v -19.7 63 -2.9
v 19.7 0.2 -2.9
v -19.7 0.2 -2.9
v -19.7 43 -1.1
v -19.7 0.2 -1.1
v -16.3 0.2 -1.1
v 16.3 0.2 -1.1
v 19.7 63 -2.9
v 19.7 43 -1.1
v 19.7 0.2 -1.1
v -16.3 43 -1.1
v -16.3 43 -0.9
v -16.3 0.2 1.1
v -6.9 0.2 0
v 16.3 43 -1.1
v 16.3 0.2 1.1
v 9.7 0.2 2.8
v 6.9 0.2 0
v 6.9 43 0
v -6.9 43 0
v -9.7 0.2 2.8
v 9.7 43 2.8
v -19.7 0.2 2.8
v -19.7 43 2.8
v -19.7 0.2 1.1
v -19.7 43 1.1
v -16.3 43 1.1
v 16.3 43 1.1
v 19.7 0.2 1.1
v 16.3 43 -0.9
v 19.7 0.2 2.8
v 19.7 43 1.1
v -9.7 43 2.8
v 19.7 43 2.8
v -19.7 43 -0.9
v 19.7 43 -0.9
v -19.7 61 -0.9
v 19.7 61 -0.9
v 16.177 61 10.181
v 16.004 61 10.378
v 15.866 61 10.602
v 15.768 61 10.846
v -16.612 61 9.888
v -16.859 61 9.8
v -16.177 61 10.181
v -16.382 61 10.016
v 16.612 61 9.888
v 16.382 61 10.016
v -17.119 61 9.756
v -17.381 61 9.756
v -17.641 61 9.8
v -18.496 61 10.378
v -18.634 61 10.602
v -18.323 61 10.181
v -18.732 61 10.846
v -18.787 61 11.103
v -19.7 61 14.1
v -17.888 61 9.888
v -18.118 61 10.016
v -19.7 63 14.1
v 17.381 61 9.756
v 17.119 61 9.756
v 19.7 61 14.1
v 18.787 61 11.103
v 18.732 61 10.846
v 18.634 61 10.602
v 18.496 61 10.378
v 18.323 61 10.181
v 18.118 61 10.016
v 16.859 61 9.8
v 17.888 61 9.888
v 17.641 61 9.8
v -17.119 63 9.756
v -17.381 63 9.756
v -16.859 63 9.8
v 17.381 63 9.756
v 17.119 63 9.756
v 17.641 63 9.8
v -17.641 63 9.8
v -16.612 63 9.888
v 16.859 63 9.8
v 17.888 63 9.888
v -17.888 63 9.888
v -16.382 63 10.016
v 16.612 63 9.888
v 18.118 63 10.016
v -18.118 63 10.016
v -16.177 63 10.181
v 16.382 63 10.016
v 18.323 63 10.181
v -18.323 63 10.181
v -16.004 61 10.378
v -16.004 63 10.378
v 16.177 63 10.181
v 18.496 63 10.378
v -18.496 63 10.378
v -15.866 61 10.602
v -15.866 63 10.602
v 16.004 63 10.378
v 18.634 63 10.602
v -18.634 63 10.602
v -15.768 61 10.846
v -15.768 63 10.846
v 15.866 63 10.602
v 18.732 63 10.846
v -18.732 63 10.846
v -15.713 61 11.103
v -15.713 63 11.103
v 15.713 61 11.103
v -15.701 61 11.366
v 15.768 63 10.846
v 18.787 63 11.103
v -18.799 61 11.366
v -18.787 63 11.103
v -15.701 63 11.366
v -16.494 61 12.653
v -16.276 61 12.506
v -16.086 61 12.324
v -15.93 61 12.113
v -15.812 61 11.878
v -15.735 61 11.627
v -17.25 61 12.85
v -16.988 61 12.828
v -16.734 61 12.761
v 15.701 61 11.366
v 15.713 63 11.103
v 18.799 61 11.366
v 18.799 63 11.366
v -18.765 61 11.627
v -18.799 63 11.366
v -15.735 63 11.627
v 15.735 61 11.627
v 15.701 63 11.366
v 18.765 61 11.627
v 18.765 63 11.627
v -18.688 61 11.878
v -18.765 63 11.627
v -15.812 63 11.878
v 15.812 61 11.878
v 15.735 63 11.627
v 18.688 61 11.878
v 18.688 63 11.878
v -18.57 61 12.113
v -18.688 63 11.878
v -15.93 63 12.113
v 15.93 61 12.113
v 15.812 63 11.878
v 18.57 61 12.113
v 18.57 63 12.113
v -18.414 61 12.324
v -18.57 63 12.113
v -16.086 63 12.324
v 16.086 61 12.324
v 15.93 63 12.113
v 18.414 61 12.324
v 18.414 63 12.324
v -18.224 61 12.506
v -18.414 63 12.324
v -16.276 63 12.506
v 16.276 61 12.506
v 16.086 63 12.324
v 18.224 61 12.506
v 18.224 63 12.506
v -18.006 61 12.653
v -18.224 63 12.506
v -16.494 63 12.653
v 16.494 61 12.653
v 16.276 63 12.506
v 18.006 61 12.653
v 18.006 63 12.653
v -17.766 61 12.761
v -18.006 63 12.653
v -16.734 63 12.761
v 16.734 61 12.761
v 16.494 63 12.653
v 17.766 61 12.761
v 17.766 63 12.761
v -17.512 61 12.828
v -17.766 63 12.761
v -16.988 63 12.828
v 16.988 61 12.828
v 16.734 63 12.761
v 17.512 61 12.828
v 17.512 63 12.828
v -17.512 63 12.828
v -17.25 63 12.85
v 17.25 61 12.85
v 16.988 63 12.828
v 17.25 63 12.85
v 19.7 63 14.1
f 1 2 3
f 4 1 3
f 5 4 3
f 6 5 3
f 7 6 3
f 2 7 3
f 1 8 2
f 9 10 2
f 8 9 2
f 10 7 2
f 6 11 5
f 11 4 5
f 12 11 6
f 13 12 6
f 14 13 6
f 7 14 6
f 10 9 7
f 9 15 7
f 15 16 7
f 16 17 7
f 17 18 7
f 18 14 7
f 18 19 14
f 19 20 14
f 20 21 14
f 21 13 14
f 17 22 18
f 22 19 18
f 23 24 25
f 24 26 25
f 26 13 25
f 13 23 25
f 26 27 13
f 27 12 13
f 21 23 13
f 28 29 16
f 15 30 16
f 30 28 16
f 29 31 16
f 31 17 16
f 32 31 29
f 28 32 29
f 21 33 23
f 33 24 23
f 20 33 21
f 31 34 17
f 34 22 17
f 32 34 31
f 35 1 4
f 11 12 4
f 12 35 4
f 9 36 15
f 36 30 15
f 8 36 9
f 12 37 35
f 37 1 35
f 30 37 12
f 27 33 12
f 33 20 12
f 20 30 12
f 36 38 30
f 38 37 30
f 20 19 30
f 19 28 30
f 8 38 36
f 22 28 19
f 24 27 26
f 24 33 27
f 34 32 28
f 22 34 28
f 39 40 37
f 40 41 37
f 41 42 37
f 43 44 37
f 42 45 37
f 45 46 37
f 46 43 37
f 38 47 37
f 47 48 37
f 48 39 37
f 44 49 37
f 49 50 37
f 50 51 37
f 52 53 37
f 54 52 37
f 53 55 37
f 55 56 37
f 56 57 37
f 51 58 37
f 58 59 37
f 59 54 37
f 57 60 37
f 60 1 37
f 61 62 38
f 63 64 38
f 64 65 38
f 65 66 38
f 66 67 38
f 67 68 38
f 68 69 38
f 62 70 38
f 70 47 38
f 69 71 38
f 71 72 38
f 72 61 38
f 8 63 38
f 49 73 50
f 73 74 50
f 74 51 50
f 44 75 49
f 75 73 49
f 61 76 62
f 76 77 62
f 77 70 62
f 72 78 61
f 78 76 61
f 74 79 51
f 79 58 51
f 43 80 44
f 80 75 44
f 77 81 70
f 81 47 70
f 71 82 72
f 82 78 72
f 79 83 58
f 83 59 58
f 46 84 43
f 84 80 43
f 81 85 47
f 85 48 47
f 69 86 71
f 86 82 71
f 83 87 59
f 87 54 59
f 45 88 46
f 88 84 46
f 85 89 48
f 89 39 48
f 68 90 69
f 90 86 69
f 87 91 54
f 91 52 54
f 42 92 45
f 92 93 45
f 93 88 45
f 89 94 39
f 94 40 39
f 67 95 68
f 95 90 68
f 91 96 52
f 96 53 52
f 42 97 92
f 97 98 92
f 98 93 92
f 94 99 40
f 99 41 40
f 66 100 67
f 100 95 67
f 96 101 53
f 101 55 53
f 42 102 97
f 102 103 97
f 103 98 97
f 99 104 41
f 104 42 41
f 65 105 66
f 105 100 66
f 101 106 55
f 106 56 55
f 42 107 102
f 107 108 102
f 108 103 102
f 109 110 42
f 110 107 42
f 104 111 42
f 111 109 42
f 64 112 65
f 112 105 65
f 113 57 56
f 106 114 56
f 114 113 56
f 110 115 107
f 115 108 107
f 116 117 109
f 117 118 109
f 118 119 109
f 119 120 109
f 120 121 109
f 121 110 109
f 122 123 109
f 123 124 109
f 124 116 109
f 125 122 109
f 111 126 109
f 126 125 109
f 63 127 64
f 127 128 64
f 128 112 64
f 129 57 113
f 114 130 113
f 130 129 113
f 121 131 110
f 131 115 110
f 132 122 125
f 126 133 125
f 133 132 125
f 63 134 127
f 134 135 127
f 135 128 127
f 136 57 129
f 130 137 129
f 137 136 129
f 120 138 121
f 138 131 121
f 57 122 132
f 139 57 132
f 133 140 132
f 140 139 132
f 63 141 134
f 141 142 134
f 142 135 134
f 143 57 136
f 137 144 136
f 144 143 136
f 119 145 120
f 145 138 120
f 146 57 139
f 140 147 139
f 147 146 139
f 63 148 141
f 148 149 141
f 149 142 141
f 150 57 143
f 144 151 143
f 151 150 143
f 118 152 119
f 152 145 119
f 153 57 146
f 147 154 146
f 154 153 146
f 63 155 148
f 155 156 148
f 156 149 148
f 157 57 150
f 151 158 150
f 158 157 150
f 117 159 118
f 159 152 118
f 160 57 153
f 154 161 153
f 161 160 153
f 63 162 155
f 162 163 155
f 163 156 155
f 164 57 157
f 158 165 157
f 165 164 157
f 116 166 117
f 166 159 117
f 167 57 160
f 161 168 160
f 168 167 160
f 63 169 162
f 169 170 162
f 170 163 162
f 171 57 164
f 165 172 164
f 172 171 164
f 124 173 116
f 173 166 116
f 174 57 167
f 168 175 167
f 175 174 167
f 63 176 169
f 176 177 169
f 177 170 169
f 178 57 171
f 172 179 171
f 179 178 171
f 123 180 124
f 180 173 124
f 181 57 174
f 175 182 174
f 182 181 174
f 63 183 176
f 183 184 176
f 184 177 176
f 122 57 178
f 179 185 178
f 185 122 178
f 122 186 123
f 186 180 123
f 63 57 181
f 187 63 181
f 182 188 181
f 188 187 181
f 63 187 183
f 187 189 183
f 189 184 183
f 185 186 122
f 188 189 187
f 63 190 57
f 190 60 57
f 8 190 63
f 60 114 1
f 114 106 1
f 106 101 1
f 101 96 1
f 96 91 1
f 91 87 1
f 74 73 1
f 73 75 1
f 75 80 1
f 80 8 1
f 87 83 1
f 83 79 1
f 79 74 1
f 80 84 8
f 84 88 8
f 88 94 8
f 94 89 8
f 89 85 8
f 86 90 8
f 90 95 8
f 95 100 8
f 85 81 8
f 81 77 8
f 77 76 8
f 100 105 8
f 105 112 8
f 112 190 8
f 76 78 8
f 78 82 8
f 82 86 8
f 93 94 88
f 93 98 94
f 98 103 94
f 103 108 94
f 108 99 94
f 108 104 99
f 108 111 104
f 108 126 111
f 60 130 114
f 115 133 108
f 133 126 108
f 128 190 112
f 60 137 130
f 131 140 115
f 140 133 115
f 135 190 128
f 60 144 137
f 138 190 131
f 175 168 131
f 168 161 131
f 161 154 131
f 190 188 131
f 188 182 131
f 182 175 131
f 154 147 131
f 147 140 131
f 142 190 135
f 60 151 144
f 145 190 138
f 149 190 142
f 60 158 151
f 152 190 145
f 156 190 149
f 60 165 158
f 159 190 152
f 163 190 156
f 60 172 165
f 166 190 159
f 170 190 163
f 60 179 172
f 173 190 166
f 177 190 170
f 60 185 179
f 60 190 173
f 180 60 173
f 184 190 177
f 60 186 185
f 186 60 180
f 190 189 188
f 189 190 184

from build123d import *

# Parameters (mm, degrees)
RESSALTO_EXTRUS_O1_DEPTH = 63
ESBO_O2_W                = 3.8
ESBO_O2_H                = 20
CORTE_EXTRUS_O1_DEPTH    = 41
ESBO_O3_W                = 40
ESBO_O3_H                = 2
RESSALTO_EXTRUS_O2_DEPTH = 15
ESBO_O4_R                = 1.55
CORTE_EXTRUS_O2_DEPTH    = 3
ESBO_O5_W                = 0.3
ESBO_O5_H                = 17
CORTE_EXTRUS_O3_DEPTH    = 64
ESBO_O6_W                = 3.6
ESBO_O6_H                = 2.2
CORTE_EXTRUS_O4_DEPTH    = 43
ESBO_O7_W                = 39.4
ESBO_O7_H                = 0.1
CORTE_EXTRUS_O5_DEPTH    = 46
CORTE_EXTRUS_O6_DEPTH    = 43
ESBO_O9_W                = 39.4
ESBO_O9_H                = 0.2
CORTE_EXTRUS_O7_DEPTH    = 10


with BuildPart() as part:
    # Esboço1 → Ressalto-extrusão1 (new body)
    with BuildSketch(Plane(origin=(0, 0, 0), x_dir=(1, 0, 0), z_dir=(0, 1, 0))):
        Polygon((-20, 2.9), (20, 2.9), (20, 0.9), (16.5, 0.9), (16.5, -0.9), (20, -0.9), (20, -2.9), (-20, -2.9), (-20, -0.9), (-16.5, -0.9), (-16.5, 0.9), (-20, 0.9), align=None)
    extrude(amount=RESSALTO_EXTRUS_O1_DEPTH)

    # Esboço2 → Corte-extrusão1 (cut, through all)
    with BuildSketch(Plane(origin=(20, 0, 0), x_dir=(0, 0, -1), z_dir=(1, 0, 0))):
        with Locations((-1, 53)):
            Rectangle(ESBO_O2_W, ESBO_O2_H)
    extrude(amount=-CORTE_EXTRUS_O1_DEPTH, mode=Mode.SUBTRACT)

    # Esboço3 → Ressalto-extrusão2 (add)
    with BuildSketch(Plane.XY.offset(-0.9)):
        with Locations((0, 62)):
            Rectangle(ESBO_O3_W, ESBO_O3_H)
    extrude(amount=RESSALTO_EXTRUS_O2_DEPTH)

    # Esboço4 → Corte-extrusão2 (cut)
    with BuildSketch(Plane(origin=(0, 63, 0), x_dir=(1, 0, 0), z_dir=(0, 1, 0))):
        with Locations((-17.25, -11.3)):
            Circle(ESBO_O4_R)
        with Locations((17.25, -11.3)):
            Circle(ESBO_O4_R)
    extrude(amount=-CORTE_EXTRUS_O2_DEPTH, mode=Mode.SUBTRACT)

    # Esboço5 → Corte-extrusão3 (cut, through all)
    with BuildSketch(Plane.XZ):
        with Locations((-19.85, 5.6)):
            Rectangle(ESBO_O5_W, ESBO_O5_H)
        with Locations((19.85, 5.6)):
            Rectangle(ESBO_O5_W, ESBO_O5_H)
    extrude(amount=-CORTE_EXTRUS_O3_DEPTH, mode=Mode.SUBTRACT)

    # Esboço6 → Corte-extrusão4 (cut)
    with BuildSketch(Plane.XZ):
        with Locations((18.1, 0)):
            Rectangle(ESBO_O6_W, ESBO_O6_H)
        with Locations((-18.1, 0)):
            Rectangle(ESBO_O6_W, ESBO_O6_H)
    extrude(amount=-CORTE_EXTRUS_O4_DEPTH, mode=Mode.SUBTRACT)

    # Esboço7 → Corte-extrusão5 (cut)
    with BuildSketch(Plane.XZ):
        with Locations((0, 2.85)):
            Rectangle(ESBO_O7_W, ESBO_O7_H)
    extrude(amount=-CORTE_EXTRUS_O5_DEPTH, mode=Mode.SUBTRACT)

    # Esboço8 → Corte-extrusão6 (cut)
    with BuildSketch(Plane.XZ):
        Polygon((9.7, 2.8), (6.9, 0), (-6.135691889, 0), (-6.9, 0), (-9.7, 2.8), align=None)
    extrude(amount=-CORTE_EXTRUS_O6_DEPTH, mode=Mode.SUBTRACT)

    # Esboço9 → Corte-extrusão7 (cut)
    with BuildSketch(Plane.XY.offset(2.8)):
        with Locations((0, 0.1)):
            Rectangle(ESBO_O9_W, ESBO_O9_H)
    extrude(amount=-CORTE_EXTRUS_O7_DEPTH, mode=Mode.SUBTRACT)


solid = part.part
